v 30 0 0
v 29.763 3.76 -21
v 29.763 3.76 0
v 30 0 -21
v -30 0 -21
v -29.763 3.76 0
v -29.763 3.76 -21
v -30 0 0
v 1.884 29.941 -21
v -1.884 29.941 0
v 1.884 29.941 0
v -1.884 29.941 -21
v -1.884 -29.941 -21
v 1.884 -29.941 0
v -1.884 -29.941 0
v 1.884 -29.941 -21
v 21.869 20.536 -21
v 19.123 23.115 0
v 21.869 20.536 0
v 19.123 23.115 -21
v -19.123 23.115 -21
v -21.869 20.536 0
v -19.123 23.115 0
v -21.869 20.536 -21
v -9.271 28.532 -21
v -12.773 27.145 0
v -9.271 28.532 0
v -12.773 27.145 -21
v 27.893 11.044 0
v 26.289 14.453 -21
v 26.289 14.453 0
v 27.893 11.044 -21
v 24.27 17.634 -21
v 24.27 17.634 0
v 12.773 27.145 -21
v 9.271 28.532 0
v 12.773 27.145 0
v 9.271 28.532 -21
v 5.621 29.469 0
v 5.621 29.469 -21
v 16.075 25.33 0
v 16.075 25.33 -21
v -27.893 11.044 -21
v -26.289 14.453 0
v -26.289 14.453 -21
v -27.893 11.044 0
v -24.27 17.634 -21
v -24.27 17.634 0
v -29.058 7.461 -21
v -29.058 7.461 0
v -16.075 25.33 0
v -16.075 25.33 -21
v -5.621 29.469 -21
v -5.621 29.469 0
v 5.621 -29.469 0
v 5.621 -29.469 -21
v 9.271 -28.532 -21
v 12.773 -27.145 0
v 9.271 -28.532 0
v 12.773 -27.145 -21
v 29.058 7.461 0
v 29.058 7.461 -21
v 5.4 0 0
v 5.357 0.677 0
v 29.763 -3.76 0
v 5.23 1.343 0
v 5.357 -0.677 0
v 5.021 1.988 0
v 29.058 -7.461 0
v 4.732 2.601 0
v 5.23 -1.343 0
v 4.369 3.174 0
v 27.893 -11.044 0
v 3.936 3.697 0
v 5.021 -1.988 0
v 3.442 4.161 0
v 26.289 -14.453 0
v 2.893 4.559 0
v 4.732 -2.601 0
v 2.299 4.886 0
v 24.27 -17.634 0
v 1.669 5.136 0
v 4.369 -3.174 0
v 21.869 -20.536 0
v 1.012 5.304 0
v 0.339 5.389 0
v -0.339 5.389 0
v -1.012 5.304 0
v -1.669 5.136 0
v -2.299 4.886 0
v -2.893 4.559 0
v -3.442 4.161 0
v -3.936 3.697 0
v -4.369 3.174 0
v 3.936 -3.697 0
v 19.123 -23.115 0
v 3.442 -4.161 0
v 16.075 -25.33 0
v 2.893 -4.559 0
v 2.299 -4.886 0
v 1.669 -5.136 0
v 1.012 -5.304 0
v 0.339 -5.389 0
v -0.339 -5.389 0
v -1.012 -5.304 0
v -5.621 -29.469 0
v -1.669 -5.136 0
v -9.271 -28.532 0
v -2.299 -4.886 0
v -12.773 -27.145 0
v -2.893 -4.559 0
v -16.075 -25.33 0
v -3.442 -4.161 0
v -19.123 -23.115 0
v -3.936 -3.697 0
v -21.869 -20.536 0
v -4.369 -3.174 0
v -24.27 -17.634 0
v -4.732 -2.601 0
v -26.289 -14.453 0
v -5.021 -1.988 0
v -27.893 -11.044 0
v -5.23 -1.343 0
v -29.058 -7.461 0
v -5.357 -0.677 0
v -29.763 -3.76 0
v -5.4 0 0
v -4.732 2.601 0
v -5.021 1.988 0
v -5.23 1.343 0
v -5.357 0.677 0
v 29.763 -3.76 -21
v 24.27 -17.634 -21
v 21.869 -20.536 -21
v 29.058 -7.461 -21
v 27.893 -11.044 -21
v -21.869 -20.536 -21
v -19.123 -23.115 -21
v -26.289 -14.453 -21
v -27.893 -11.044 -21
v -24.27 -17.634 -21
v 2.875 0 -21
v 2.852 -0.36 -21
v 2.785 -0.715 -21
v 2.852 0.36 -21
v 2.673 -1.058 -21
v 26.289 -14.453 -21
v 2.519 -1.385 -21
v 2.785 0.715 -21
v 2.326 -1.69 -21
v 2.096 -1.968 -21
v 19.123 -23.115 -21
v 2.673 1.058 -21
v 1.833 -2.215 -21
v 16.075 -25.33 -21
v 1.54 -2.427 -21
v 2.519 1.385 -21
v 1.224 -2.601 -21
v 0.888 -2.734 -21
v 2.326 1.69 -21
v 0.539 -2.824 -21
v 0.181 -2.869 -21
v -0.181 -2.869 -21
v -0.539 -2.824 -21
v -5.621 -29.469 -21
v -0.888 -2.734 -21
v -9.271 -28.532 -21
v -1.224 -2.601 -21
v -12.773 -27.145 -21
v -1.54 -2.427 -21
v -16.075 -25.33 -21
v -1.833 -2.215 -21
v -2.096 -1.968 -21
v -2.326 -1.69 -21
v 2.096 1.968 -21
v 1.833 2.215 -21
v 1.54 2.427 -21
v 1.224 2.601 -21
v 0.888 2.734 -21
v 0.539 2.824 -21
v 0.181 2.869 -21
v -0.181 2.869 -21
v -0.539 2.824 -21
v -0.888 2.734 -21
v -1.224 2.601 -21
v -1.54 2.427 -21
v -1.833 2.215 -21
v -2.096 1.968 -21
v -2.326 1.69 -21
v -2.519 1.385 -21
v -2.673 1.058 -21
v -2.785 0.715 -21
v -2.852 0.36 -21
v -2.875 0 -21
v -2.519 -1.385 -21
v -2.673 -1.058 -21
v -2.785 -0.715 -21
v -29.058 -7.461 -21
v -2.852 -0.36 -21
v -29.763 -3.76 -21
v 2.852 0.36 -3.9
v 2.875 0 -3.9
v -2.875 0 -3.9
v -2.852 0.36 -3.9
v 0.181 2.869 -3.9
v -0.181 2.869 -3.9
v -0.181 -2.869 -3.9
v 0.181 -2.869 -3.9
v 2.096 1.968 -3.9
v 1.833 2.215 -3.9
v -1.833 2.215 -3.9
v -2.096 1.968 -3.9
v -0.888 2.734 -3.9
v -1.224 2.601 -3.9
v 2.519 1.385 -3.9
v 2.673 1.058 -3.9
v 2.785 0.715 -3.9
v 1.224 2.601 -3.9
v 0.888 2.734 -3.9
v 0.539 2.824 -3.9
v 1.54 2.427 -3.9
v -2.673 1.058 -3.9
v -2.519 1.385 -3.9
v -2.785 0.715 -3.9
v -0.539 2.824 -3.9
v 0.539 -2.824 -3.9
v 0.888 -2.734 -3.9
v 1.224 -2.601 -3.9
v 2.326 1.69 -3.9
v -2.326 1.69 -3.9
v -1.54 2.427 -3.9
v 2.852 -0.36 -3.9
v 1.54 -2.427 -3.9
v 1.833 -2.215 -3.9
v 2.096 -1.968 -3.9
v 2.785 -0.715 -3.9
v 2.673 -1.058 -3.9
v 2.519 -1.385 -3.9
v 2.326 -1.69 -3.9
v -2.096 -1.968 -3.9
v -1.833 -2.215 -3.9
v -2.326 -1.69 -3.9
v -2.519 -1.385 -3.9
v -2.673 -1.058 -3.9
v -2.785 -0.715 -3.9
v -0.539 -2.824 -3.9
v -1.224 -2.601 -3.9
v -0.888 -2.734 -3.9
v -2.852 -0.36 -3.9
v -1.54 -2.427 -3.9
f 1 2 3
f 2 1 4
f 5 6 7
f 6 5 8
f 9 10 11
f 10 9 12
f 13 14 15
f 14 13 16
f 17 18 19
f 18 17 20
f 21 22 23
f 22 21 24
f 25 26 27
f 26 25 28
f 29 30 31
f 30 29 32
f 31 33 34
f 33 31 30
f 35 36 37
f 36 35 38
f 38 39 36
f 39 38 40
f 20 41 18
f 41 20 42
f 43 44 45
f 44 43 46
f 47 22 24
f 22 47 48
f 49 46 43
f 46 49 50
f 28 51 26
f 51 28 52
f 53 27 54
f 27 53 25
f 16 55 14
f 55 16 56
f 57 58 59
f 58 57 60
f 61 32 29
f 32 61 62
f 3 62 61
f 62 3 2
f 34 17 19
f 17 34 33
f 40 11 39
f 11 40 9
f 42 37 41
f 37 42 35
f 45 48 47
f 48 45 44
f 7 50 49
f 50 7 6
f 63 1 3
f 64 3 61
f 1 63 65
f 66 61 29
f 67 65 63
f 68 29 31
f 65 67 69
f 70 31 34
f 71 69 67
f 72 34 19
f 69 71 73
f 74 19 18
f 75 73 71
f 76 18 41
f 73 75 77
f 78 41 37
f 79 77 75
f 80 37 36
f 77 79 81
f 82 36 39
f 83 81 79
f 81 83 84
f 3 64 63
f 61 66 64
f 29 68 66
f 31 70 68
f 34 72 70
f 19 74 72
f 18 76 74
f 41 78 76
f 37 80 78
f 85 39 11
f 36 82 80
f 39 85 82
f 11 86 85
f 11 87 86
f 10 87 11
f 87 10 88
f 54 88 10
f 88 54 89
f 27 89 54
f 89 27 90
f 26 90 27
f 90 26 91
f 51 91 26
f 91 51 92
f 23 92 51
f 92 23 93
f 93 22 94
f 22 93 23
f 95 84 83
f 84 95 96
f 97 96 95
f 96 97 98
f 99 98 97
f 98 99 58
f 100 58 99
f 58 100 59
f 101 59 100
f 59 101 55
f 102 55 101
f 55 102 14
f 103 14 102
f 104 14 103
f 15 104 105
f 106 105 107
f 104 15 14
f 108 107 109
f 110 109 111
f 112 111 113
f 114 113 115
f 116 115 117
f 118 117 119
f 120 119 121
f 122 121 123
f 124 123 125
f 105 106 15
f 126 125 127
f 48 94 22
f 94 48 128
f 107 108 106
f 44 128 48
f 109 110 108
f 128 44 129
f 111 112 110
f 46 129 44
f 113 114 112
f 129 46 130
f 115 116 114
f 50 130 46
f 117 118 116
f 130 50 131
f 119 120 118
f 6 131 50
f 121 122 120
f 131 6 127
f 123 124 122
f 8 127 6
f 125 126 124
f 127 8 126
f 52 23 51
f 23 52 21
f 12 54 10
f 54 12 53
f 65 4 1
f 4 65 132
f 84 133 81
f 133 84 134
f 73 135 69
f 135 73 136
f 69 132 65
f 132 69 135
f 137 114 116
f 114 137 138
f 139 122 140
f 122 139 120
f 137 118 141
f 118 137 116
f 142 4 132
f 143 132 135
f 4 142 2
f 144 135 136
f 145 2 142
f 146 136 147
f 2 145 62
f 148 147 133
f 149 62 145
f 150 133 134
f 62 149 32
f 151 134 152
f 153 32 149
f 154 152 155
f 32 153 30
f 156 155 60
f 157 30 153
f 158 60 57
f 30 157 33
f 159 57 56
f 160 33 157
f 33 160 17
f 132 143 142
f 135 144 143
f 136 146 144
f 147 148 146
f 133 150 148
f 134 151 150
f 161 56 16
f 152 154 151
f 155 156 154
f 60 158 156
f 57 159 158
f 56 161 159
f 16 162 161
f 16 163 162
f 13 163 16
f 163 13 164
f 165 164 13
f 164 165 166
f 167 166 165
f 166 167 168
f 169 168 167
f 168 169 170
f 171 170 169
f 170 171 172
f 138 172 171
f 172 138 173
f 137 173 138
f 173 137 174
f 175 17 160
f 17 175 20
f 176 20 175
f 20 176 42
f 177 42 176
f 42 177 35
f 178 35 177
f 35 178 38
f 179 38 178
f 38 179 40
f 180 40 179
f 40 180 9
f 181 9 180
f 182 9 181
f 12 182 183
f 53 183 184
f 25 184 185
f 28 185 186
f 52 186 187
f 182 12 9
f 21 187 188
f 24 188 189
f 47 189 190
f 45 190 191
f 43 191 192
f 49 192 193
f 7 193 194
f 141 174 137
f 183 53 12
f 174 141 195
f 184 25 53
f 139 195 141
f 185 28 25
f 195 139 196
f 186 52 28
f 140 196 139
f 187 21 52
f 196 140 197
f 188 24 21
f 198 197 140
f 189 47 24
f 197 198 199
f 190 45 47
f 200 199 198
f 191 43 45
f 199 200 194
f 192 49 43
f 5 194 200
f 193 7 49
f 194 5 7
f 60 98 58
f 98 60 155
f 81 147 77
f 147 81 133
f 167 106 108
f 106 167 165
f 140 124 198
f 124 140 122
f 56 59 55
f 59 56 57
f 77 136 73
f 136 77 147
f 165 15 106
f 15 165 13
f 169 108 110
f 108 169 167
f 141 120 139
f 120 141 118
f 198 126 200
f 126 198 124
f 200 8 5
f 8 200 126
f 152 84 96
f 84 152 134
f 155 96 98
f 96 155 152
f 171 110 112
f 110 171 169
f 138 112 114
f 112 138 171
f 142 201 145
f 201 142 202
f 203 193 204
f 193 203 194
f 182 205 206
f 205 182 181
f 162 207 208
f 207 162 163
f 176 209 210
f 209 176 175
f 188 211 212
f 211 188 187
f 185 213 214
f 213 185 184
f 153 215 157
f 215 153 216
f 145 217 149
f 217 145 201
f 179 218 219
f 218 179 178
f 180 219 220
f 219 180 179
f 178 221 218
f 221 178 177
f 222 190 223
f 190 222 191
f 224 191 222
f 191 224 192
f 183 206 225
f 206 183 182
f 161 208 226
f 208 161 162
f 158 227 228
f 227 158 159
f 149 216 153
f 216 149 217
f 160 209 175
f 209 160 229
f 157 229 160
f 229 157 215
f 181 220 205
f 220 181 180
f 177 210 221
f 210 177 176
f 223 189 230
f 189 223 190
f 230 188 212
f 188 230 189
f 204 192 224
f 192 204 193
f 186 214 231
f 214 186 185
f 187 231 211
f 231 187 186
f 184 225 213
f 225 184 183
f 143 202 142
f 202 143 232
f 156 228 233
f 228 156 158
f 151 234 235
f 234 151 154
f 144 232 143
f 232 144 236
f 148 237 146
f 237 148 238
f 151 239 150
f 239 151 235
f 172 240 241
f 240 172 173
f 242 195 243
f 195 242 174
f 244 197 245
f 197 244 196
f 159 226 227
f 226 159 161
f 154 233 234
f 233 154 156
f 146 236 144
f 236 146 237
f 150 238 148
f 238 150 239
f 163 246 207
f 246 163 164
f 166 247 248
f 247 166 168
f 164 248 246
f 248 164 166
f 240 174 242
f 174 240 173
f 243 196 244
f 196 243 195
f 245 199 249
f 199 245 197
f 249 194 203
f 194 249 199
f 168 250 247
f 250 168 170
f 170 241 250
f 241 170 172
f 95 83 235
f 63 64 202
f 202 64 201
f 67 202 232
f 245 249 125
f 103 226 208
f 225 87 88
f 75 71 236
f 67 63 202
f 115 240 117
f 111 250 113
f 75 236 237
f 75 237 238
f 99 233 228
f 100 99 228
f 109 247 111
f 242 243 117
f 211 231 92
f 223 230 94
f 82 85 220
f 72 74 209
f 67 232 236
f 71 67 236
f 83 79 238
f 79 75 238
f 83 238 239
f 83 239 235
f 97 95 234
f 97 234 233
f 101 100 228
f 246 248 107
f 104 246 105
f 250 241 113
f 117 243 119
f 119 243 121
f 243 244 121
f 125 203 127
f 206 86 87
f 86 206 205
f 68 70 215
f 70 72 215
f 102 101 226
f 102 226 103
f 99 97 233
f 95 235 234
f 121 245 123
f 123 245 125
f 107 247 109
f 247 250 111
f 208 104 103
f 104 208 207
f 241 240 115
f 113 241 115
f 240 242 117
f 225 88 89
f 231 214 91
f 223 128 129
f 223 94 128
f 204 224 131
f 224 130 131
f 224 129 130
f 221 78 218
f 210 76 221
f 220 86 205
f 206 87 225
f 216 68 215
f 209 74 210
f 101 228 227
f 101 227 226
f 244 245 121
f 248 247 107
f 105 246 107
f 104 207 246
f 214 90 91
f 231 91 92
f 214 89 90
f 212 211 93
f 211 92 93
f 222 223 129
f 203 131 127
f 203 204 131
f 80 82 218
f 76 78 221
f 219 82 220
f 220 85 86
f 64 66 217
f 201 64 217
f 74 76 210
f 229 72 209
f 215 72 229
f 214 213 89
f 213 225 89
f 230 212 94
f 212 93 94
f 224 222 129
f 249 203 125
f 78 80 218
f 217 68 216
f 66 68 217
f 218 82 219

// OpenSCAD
$fn = 50;

difference() {
	union() {
		translate(v = [0, 0, -21.0]) {
			cylinder(h = 21, r = 30.0);
		}
		#translate(v = [0, 0, -24.0]) {
			cylinder(h = 24, r = 2.875);
		}
	}
	union() {
		translate(v = [0, 0, 0]) {
			rotate(a = [0, 0, 0]) {
				difference() {
					union() {
						translate(v = [0, 0, -24.0]) {
							cylinder(h = 24, r = 2.6);
						}
						translate(v = [0, 0, -3.9]) {
							cylinder(h = 3.9, r1 = 2.875, r2 = 5.4);
						}
						translate(v = [0, 0, -24.0]) {
							cylinder(h = 24, r = 2.875);
						}
						translate(v = [0, 0, -24.0]) {
							cylinder(h = 24, r = 2.6);
						}
					}
					union();
				}
			}
		}
	}
}
